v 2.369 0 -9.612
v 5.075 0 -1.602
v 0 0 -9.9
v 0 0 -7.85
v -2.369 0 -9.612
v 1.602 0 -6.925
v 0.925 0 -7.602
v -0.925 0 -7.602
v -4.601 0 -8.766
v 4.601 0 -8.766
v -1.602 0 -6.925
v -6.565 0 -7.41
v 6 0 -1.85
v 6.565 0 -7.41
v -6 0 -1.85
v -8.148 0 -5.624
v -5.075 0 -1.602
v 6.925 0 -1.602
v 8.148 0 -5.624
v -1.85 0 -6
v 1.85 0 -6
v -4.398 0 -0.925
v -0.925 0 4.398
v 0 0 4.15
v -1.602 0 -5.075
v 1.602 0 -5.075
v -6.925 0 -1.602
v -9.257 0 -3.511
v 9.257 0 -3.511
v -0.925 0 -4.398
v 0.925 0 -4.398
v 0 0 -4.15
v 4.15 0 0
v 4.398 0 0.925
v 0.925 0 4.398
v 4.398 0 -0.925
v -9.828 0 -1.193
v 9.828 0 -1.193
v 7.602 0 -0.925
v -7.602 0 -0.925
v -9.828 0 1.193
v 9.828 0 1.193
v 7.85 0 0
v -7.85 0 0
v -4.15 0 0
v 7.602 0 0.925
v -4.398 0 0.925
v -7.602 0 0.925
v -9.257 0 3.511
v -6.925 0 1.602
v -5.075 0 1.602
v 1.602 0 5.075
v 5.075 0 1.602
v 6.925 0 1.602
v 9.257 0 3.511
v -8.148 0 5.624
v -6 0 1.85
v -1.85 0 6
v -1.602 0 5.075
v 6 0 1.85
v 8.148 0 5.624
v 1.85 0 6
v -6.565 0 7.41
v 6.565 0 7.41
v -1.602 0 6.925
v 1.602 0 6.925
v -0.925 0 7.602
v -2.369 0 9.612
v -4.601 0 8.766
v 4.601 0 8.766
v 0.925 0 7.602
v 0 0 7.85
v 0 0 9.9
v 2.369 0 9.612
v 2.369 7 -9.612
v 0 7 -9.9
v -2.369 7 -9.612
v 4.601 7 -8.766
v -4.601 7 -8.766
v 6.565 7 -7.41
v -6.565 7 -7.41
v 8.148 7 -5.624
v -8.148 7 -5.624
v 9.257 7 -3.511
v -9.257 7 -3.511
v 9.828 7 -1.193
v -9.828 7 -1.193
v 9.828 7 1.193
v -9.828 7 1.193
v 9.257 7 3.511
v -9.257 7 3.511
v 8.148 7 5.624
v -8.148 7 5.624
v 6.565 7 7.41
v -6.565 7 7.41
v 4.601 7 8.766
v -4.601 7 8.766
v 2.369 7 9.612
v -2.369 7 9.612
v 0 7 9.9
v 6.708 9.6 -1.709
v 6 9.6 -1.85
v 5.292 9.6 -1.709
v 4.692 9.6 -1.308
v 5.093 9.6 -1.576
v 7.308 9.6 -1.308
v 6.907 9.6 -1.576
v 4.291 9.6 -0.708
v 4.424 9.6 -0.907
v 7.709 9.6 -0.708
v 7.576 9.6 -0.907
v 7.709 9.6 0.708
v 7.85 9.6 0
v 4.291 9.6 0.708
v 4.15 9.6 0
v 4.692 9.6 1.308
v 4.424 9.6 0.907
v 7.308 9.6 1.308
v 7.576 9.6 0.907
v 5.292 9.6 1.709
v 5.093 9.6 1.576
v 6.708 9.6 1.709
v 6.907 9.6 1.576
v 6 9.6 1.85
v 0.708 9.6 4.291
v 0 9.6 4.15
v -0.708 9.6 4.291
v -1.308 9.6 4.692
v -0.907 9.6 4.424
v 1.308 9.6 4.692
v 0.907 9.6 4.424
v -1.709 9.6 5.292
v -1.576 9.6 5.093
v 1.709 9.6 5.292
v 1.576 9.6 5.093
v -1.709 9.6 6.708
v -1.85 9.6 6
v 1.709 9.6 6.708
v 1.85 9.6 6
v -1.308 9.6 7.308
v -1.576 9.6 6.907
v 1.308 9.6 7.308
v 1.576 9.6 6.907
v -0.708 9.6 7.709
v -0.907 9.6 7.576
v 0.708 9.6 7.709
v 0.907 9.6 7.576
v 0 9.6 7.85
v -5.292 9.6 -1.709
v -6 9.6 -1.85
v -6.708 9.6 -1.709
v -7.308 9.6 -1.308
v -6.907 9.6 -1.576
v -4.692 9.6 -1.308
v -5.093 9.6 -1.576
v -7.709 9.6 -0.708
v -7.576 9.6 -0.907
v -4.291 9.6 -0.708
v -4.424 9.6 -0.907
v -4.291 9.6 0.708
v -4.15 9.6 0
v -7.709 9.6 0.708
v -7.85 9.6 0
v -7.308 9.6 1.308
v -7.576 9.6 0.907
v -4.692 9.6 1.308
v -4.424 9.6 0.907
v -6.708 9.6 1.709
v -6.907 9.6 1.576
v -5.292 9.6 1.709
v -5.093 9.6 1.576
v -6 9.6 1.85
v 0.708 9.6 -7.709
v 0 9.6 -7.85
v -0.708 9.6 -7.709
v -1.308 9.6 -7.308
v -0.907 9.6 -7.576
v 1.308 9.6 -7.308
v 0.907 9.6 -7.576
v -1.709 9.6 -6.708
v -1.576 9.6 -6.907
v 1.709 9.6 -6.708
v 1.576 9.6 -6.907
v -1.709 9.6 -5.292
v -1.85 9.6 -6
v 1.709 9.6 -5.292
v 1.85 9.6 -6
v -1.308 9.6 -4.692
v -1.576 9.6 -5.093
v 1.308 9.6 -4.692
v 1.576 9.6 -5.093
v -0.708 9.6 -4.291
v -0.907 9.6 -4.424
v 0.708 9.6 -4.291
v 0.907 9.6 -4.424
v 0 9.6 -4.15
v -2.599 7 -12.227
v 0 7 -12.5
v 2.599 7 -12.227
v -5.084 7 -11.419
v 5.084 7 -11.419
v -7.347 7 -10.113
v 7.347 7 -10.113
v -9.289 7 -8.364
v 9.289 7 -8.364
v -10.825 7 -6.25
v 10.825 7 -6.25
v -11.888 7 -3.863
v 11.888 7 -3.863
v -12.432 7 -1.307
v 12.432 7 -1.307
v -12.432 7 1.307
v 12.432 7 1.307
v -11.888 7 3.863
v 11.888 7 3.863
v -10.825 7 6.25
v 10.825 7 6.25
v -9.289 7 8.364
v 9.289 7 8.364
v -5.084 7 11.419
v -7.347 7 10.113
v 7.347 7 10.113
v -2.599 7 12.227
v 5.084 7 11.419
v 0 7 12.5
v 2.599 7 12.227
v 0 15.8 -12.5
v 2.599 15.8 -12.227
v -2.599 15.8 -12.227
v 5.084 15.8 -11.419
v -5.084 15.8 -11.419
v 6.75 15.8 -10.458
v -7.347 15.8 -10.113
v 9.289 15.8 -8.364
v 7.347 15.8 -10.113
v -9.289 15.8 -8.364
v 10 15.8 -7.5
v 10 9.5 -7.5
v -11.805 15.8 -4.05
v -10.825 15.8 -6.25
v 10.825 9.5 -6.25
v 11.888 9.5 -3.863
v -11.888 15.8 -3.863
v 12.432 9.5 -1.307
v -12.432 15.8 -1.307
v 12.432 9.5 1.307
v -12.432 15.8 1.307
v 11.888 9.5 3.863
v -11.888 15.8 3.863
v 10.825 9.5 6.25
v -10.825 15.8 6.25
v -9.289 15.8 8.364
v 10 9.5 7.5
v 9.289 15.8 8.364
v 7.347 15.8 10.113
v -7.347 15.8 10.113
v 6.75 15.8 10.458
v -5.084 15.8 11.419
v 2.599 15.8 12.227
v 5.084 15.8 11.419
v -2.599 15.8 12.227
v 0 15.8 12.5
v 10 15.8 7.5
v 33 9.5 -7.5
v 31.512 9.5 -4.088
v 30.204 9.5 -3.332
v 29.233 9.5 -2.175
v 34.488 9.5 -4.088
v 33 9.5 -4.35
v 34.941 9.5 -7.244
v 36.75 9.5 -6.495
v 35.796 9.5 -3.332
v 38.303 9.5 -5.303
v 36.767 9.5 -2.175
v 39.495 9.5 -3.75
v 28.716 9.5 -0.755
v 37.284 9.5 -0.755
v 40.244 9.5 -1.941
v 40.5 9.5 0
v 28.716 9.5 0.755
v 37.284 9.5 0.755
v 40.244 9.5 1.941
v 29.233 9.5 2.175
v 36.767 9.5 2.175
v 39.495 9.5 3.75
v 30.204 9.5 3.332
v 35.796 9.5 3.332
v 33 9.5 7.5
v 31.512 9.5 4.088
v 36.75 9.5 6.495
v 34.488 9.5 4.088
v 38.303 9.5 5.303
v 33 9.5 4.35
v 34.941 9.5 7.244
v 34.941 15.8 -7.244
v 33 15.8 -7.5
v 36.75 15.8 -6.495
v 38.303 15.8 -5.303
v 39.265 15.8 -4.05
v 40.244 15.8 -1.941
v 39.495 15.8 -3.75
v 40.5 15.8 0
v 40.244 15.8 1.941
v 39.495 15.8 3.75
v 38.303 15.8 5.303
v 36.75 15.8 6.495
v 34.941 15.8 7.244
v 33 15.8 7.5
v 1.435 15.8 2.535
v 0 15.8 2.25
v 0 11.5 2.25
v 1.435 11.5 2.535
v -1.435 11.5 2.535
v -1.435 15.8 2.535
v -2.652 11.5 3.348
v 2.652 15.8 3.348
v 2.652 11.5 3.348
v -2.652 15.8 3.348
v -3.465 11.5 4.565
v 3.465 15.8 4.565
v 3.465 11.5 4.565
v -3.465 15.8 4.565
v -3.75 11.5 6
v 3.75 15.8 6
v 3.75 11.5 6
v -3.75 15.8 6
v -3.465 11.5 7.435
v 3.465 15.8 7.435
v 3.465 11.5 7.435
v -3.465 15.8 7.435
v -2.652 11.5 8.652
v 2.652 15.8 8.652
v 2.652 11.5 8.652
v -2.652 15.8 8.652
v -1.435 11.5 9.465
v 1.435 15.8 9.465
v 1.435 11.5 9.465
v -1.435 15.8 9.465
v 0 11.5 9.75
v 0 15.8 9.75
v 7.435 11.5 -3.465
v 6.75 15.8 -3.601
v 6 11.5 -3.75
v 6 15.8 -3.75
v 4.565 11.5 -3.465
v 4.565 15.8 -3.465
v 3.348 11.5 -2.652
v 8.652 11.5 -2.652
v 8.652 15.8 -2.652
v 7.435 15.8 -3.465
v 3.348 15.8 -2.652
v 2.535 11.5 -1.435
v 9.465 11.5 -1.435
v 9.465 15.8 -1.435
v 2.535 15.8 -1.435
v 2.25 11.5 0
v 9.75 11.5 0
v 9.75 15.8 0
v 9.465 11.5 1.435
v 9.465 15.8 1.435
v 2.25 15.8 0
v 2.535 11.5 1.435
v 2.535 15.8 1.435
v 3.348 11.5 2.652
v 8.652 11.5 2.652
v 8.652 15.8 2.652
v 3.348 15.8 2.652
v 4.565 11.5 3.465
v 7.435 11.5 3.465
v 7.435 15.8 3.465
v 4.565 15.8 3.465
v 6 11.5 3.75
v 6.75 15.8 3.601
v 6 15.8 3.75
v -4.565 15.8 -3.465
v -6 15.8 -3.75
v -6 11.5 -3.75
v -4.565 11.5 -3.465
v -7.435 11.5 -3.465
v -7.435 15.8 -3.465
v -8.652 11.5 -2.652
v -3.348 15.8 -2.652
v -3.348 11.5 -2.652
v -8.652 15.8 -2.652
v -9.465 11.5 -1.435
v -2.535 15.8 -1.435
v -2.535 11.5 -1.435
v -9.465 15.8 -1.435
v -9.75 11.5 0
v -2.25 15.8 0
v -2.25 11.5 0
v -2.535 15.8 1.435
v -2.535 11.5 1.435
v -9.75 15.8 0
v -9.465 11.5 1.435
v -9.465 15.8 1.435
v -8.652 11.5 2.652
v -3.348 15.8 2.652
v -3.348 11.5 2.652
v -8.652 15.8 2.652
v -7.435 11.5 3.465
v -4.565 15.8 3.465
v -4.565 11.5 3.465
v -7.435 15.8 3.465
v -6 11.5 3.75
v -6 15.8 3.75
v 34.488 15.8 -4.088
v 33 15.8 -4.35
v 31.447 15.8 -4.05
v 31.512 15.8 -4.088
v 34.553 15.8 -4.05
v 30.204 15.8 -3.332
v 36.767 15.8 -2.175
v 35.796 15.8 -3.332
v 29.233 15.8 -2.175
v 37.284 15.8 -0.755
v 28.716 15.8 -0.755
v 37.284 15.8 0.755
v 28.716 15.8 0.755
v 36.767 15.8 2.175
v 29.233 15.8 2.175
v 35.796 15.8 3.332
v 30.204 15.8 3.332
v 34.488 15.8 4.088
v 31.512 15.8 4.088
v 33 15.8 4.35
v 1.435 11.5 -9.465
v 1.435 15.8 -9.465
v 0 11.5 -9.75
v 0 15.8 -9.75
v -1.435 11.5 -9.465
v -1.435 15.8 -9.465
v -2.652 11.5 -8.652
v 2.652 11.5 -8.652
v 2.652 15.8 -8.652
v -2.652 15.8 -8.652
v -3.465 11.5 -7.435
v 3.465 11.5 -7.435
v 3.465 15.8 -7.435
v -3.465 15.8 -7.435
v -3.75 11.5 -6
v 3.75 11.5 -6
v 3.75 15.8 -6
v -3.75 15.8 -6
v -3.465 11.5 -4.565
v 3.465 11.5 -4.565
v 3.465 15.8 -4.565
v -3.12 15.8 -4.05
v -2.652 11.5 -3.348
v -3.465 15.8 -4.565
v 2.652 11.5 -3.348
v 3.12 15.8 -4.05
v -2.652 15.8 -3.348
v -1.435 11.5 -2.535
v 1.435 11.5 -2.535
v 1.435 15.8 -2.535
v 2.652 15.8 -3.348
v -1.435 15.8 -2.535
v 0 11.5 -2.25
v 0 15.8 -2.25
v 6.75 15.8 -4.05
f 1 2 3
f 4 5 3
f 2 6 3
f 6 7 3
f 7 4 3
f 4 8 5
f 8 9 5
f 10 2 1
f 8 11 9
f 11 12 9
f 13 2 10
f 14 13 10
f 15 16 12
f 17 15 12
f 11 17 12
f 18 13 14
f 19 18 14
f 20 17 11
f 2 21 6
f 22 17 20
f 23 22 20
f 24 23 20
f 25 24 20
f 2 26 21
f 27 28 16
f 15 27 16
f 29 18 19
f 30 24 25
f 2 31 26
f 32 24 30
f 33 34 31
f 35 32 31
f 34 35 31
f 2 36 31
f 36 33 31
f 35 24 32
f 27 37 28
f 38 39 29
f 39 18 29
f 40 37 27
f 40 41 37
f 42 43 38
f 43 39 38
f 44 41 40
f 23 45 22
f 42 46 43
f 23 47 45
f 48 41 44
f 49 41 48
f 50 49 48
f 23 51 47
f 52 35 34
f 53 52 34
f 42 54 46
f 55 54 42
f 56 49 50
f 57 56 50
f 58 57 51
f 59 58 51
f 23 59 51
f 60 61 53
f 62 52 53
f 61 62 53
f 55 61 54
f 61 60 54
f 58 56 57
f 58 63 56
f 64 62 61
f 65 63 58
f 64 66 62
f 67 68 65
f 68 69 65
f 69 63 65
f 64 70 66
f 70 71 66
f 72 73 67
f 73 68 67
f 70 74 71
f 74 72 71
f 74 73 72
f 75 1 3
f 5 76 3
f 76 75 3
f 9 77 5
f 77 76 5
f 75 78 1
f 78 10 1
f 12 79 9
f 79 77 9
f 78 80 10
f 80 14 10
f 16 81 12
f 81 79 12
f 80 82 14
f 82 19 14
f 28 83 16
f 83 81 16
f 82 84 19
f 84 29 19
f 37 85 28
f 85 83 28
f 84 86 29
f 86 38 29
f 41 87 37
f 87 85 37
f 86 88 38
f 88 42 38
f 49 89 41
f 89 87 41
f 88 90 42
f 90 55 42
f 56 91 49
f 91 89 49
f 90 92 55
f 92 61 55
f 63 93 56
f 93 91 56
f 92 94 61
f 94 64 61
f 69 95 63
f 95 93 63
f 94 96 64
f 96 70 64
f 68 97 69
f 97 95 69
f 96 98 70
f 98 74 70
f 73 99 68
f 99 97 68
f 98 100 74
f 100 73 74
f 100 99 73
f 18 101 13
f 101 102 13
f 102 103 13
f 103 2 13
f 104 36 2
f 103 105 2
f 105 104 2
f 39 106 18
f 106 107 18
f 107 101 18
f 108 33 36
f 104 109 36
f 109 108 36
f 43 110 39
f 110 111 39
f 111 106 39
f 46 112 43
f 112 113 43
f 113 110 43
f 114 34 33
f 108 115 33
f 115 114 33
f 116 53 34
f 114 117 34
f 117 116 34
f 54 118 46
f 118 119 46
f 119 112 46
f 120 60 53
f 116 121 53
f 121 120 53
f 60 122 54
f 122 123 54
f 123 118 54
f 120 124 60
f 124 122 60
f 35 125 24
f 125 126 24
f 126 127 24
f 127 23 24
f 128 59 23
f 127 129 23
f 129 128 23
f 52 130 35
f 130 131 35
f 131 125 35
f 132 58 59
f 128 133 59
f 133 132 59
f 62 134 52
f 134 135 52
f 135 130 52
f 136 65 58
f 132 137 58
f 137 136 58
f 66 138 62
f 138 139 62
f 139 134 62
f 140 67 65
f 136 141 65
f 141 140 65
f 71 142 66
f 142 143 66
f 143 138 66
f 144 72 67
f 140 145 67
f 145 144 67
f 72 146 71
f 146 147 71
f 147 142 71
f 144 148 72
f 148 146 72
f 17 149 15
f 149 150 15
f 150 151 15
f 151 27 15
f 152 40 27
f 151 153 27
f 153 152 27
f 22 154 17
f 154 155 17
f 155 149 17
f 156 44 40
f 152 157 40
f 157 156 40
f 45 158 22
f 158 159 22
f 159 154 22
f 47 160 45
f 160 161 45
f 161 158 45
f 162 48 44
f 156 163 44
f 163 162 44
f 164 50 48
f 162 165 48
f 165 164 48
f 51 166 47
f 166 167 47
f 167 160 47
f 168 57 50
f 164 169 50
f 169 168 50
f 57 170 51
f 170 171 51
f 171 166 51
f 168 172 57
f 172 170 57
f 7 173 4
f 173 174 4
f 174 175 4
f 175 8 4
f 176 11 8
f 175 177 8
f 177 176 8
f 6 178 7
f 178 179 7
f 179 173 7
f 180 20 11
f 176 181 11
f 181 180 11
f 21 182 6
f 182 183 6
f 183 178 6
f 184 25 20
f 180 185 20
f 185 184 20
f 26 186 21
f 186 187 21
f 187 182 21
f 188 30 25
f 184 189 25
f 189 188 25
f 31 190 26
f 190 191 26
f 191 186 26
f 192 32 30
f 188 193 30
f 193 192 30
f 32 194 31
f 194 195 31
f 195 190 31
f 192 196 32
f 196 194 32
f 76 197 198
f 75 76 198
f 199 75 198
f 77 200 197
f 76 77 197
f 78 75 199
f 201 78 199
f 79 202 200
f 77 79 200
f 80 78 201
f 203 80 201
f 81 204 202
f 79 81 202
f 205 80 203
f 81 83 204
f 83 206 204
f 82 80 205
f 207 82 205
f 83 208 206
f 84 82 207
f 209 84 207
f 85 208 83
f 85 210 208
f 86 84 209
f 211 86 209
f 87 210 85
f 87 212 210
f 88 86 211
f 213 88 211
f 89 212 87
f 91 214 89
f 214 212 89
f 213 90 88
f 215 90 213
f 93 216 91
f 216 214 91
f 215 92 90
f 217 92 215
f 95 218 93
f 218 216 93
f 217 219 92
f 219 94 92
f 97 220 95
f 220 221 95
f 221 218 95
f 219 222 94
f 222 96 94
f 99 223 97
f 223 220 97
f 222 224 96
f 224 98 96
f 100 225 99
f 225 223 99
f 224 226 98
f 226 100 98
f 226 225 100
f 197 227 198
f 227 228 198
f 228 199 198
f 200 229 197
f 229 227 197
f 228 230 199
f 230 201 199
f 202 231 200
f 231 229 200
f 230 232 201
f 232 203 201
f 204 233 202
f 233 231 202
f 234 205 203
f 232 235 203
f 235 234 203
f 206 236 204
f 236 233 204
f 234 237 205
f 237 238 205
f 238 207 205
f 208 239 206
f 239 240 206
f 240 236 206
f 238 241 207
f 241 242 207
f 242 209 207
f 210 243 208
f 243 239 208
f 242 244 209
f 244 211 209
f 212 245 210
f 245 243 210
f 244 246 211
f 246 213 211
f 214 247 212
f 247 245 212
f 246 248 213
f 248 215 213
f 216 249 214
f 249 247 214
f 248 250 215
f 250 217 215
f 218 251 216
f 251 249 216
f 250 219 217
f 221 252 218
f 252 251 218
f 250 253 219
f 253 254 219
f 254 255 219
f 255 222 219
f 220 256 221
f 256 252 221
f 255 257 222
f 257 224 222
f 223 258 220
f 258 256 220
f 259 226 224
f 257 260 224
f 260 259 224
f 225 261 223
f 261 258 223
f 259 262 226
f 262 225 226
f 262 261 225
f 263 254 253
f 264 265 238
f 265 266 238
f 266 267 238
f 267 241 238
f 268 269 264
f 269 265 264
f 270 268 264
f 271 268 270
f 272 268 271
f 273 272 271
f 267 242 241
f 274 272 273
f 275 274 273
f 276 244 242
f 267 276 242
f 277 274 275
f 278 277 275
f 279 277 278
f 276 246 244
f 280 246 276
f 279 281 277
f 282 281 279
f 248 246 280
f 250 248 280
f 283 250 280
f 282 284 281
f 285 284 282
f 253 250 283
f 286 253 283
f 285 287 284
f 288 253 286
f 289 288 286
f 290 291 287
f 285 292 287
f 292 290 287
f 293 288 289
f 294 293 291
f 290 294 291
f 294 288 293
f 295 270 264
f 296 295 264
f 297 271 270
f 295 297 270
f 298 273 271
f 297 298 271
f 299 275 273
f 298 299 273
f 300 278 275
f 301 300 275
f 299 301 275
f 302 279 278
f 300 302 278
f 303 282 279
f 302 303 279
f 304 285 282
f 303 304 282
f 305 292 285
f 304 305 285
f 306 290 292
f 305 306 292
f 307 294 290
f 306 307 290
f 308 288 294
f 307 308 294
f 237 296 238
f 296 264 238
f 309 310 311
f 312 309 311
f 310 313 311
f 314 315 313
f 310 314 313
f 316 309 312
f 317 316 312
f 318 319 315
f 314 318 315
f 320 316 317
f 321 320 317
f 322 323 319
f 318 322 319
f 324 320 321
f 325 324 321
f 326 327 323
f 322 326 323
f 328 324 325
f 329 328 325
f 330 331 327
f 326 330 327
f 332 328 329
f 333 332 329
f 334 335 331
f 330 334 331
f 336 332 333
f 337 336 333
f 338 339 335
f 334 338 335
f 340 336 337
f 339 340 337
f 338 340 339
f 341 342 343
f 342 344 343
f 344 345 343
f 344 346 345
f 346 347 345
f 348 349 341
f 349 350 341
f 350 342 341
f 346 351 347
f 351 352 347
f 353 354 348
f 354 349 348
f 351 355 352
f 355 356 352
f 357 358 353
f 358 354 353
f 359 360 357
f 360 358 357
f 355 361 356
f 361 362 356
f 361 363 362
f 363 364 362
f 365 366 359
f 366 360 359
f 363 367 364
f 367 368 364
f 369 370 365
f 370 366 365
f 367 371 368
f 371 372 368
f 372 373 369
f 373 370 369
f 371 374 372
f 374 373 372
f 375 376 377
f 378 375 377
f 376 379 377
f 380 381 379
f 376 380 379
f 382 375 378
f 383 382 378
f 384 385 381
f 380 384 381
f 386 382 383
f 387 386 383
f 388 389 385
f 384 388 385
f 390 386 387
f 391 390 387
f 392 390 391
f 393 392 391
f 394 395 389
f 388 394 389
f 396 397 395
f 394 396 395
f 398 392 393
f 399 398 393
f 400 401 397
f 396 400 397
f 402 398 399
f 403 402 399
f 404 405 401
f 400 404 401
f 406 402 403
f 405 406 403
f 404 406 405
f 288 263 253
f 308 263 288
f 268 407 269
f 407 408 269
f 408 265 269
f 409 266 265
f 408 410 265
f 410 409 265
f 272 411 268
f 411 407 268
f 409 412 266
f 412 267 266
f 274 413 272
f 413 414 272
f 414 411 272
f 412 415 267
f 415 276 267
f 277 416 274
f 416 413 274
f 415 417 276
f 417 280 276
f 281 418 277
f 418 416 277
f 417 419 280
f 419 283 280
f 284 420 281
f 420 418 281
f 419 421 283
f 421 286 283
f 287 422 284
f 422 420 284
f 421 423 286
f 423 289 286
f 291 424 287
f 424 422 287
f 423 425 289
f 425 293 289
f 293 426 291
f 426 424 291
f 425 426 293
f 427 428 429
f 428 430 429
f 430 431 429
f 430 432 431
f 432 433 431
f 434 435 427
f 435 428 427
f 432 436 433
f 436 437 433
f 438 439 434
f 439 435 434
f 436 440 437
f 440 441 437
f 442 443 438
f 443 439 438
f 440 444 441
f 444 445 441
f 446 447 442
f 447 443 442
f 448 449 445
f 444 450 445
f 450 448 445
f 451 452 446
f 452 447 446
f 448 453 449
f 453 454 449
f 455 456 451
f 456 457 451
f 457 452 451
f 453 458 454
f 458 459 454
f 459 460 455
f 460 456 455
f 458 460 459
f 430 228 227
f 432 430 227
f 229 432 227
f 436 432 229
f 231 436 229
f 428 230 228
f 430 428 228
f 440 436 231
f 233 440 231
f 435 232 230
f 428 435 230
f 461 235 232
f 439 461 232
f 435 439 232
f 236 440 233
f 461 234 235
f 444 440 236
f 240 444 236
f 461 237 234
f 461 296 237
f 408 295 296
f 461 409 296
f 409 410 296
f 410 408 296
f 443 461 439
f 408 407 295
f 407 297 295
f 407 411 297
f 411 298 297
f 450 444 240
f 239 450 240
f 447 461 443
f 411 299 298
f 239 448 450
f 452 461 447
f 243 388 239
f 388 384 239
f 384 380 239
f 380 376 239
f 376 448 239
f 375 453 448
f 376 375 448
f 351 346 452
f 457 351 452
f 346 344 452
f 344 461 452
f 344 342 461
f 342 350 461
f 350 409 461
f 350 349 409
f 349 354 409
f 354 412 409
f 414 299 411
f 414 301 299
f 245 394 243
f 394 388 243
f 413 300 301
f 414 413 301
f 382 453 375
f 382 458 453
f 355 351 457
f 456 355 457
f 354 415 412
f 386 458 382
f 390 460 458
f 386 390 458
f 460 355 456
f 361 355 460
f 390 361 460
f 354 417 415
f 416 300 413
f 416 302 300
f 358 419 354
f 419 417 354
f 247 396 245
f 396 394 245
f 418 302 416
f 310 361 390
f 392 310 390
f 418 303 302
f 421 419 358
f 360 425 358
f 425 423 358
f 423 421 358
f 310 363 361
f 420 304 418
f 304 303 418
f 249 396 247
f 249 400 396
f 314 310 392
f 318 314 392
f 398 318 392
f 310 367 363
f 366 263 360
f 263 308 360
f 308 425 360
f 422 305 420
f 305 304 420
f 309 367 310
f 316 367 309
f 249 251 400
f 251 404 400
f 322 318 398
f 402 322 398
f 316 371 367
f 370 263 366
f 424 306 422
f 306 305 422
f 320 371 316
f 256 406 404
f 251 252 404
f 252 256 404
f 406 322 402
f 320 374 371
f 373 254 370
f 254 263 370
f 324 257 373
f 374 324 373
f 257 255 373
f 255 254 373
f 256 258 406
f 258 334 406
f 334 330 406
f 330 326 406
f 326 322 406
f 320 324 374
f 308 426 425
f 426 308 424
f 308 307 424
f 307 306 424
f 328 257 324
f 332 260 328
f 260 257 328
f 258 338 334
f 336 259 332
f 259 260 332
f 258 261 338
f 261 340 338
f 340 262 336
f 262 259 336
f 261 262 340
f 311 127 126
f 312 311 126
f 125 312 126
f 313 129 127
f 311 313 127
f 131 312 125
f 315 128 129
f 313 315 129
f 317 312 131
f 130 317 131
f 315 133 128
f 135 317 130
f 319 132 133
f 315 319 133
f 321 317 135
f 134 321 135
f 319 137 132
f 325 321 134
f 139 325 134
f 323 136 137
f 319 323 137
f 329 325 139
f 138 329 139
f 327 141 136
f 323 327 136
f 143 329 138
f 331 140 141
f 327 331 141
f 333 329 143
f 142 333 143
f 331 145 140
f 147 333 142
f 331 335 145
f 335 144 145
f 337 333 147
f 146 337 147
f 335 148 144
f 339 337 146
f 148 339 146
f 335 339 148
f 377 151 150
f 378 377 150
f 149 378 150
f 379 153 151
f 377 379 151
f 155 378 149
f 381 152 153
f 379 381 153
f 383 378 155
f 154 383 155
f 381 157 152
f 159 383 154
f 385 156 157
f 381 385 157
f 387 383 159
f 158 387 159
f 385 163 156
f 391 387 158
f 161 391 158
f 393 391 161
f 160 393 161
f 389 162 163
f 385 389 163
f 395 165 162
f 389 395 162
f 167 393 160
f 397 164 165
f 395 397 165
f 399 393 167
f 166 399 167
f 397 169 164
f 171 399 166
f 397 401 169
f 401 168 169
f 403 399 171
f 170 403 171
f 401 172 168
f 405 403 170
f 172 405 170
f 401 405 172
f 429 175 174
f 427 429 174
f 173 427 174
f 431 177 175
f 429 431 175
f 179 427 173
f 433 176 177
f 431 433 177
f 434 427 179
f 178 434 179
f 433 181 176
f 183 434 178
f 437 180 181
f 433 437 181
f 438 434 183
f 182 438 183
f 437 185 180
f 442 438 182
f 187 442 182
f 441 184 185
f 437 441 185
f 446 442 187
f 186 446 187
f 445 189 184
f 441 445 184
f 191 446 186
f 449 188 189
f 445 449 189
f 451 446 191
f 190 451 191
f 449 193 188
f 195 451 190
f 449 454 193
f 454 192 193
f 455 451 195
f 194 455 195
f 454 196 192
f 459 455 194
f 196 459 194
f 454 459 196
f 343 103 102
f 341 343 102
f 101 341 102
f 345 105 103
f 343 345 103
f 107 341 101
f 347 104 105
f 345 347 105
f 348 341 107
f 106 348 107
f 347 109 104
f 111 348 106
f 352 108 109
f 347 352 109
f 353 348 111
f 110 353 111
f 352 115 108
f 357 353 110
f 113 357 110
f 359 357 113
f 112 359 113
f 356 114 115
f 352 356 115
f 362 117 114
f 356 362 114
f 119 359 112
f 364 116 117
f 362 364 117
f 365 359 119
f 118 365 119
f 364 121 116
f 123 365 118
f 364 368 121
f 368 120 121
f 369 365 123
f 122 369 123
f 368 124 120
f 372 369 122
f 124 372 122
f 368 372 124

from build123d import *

# Parameters (mm, degrees)
SKETCH_1_R      = 9.9
SKETCH_1_R_2    = 1.85
EXTRUDE_1_DEPTH = 7
SKETCH_2_R      = 12.5
SKETCH_2_R_2    = 1.85
EXTRUDE_2_DEPTH = 2.5
SKETCH_3_R      = 3.75
EXTRUDE_3_DEPTH = 6.3
CHAMFER_1_SIZE  = 2


with BuildPart() as part:
    # 草图1 → 凸台-拉伸1 (new body)
    with BuildSketch(Plane(origin=(0, 0, 0), x_dir=(1, 0, 0), z_dir=(0, 1, 0))):
        with Locations(Location((0, 0, 0), (0, 0, 270))):
            Circle(SKETCH_1_R)
        with Locations(Location((6, 0, 0), (0, 0, 270))):
            Circle(SKETCH_1_R_2, mode=Mode.SUBTRACT)
        with Locations(Location((0, -6, 0), (0, 0, 270))):
            Circle(SKETCH_1_R_2, mode=Mode.SUBTRACT)
        with Locations(Location((-6, 0, 0), (0, 0, 270))):
            Circle(SKETCH_1_R_2, mode=Mode.SUBTRACT)
        with Locations(Location((0, 6, 0), (0, 0, 270))):
            Circle(SKETCH_1_R_2, mode=Mode.SUBTRACT)
    extrude(amount=EXTRUDE_1_DEPTH)

    # 草图2 → 凸台-拉伸2 (add)
    with BuildSketch(Plane(origin=(0, 7, 0), x_dir=(1, 0, 0), z_dir=(0, 1, 0))):
        with Locations(Location((0, 0, 0), (0, 0, 270))):
            Circle(SKETCH_2_R)
        with Locations(Location((-6, 0, 0), (0, 0, 270))):
            Circle(SKETCH_2_R_2, mode=Mode.SUBTRACT)
        with Locations(Location((0, -6, 0), (0, 0, 270))):
            Circle(SKETCH_2_R_2, mode=Mode.SUBTRACT)
        with Locations(Location((6, 0, 0), (0, 0, 270))):
            Circle(SKETCH_2_R_2, mode=Mode.SUBTRACT)
        with Locations(Location((0, 6, 0), (0, 0, 270))):
            Circle(SKETCH_2_R_2, mode=Mode.SUBTRACT)
    extrude(amount=EXTRUDE_2_DEPTH)

    # 草图3 → 凸台-拉伸3 (add)
    # profile 1 of 8: a face of its own
    with BuildSketch(Plane(origin=(0, 9.5, 0), x_dir=(1, 0, 0), z_dir=(0, 1, 0))):
        with BuildLine():
            Line((2.25, 0), (-2.25, 0))
            ThreePointArc((-2.25, 0), (-6, -3.75), (-9.75, 0))
            Line((-9.75, 0), (-12.5, 0))
            ThreePointArc((-12.5, 0), (-3.952847075, -11.858541226), (10, -7.5))
            ThreePointArc((10, -7.5), (11.858541226, -3.952847075), (12.5, 0))
            Line((12.5, 0), (9.75, 0))
            ThreePointArc((9.75, 0), (6, -3.75), (2.25, 0))
        make_face()
        with Locations(Location((0, -6, 0), (0, 0, 270))):
            Circle(SKETCH_3_R, mode=Mode.SUBTRACT)
    # profile 2 of 8: a face of its own
    with BuildSketch(Plane(origin=(0, 9.5, 0), x_dir=(1, 0, 0), z_dir=(0, 1, 0))):
        with BuildLine():
            ThreePointArc((-9.75, 0), (-6, 3.75), (-2.25, 0))
            Line((-2.25, 0), (2.25, 0))
            ThreePointArc((2.25, 0), (6, 3.75), (9.75, 0))
            Line((9.75, 0), (12.5, 0))
            ThreePointArc((12.5, 0), (11.858541226, 3.952847075), (10, 7.5))
            ThreePointArc((10, 7.5), (-3.952847075, 11.858541226), (-12.5, 0))
            Line((-12.5, 0), (-9.75, 0))
        make_face()
        with Locations(Location((0, 6, 0), (0, 0, 270))):
            Circle(SKETCH_3_R, mode=Mode.SUBTRACT)
    # profile 3 of 8: a face of its own
    with BuildSketch(Plane(origin=(0, 9.5, 0), x_dir=(1, 0, 0), z_dir=(0, 1, 0))):
        with BuildLine():
            ThreePointArc((10, 7.5), (11.858541226, 3.952847075), (12.5, 0))
            Line((12.5, 0), (25.5, 0))
            ThreePointArc((25.5, 0), (27.696699141, 5.303300859), (33, 7.5))
            Line((33, 7.5), (10, 7.5))
        make_face()
    # profile 4 of 8: a face of its own
    with BuildSketch(Plane(origin=(0, 9.5, 0), x_dir=(1, 0, 0), z_dir=(0, 1, 0))):
        with BuildLine():
            Line((25.5, 0), (12.5, 0))
            ThreePointArc((12.5, 0), (11.858541226, -3.952847075), (10, -7.5))
            Line((10, -7.5), (33, -7.5))
            ThreePointArc((33, -7.5), (27.696699141, -5.303300859), (25.5, 0))
        make_face()
    # profile 5 of 8: a face of its own
    with BuildSketch(Plane(origin=(0, 9.5, 0), x_dir=(1, 0, 0), z_dir=(0, 1, 0))):
        with BuildLine():
            ThreePointArc((33, 7.5), (27.696699141, 5.303300859), (25.5, 0))
            Line((25.5, 0), (28.65, 0))
            ThreePointArc((28.65, 0), (33, 4.35), (37.35, 0))
            Line((37.35, 0), (40.5, 0))
            ThreePointArc((40.5, 0), (38.303300859, 5.303300859), (33, 7.5))
        make_face()
    # profile 6 of 8: a face of its own
    with BuildSketch(Plane(origin=(0, 9.5, 0), x_dir=(1, 0, 0), z_dir=(0, 1, 0))):
        with BuildLine():
            Line((28.65, 0), (25.5, 0))
            ThreePointArc((25.5, 0), (27.696699141, -5.303300859), (33, -7.5))
            ThreePointArc((33, -7.5), (38.303300859, -5.303300859), (40.5, 0))
            Line((40.5, 0), (37.35, 0))
            ThreePointArc((37.35, 0), (33, -4.35), (28.65, 0))
        make_face()
    # profile 7 of 8: a face of its own
    with BuildSketch(Plane(origin=(0, 9.5, 0), x_dir=(1, 0, 0), z_dir=(0, 1, 0))):
        with BuildLine():
            ThreePointArc((33, 7.5), (27.696699141, 5.303300859), (25.5, 0))
            Line((25.5, 0), (28.65, 0))
            ThreePointArc((28.65, 0), (33, 4.35), (37.35, 0))
            Line((37.35, 0), (40.5, 0))
            ThreePointArc((40.5, 0), (38.303300859, 5.303300859), (33, 7.5))
        make_face()
    # profile 8 of 8: a face of its own
    with BuildSketch(Plane(origin=(0, 9.5, 0), x_dir=(1, 0, 0), z_dir=(0, 1, 0))):
        with BuildLine():
            Line((28.65, 0), (25.5, 0))
            ThreePointArc((25.5, 0), (27.696699141, -5.303300859), (33, -7.5))
            ThreePointArc((33, -7.5), (38.303300859, -5.303300859), (40.5, 0))
            Line((40.5, 0), (37.35, 0))
            ThreePointArc((37.35, 0), (33, -4.35), (28.65, 0))
        make_face()
    extrude(amount=EXTRUDE_3_DEPTH)

    # 倒角1
    # the kernel refuses this chamfer: 2 mm, written as the material it adds along each edge
    with BuildSketch(Plane(origin=(0, 9.5, 6), x_dir=(0, 0, 1), z_dir=(-1, 0, 0))) as chamfer_1_piece_1_section:
        Polygon((3.75 - CHAMFER_1_SIZE, 0), (3.75, CHAMFER_1_SIZE), (3.75, 0), align=None)
    chamfer_1_piece_1 = revolve(axis=Axis((0, 9.5, 6), (0, 1, 0)), mode=Mode.PRIVATE)
    chamfer_1_piece_1 = chamfer_1_piece_1 - Plane(origin=(0, 10.553600351, 6), x_dir=(0, 0, 1), z_dir=(0, -1, 0)) * Cylinder(1.85, 15, mode=Mode.PRIVATE)
    add(chamfer_1_piece_1)
    with BuildSketch(Plane(origin=(-6, 9.5, 0), x_dir=(-1, 0, 0), z_dir=(0, 0, 1))) as chamfer_1_piece_2_section:
        Polygon((3.75 - CHAMFER_1_SIZE, 0), (3.75, -CHAMFER_1_SIZE), (3.75, 0), align=None)
    chamfer_1_piece_2 = revolve(axis=Axis((-6, 9.5, 0), (0, -1, 0)), mode=Mode.PRIVATE)
    chamfer_1_piece_2 = chamfer_1_piece_2 - Plane(origin=(-6, 10.553600351, 0), x_dir=(0, 0, 1), z_dir=(0, -1, 0)) * Cylinder(1.85, 15, mode=Mode.PRIVATE)
    add(chamfer_1_piece_2)
    with BuildSketch(Plane(origin=(0, 9.5, -6), x_dir=(0, 0, 1), z_dir=(-1, 0, 0))) as chamfer_1_piece_3_section:
        Polygon((3.75 - CHAMFER_1_SIZE, 0), (3.75, CHAMFER_1_SIZE), (3.75, 0), align=None)
    chamfer_1_piece_3 = revolve(axis=Axis((0, 9.5, -6), (0, 1, 0)), mode=Mode.PRIVATE)
    chamfer_1_piece_3 = chamfer_1_piece_3 - Plane(origin=(0, 10.553600351, -6), x_dir=(0, 0, 1), z_dir=(0, -1, 0)) * Cylinder(1.85, 16, mode=Mode.PRIVATE)
    add(chamfer_1_piece_3)
    with BuildSketch(Plane(origin=(6, 9.5, 0), x_dir=(1, 0, 0), z_dir=(0, 0, -1))) as chamfer_1_piece_4_section:
        Polygon((3.75 - CHAMFER_1_SIZE, 0), (3.75, -CHAMFER_1_SIZE), (3.75, 0), align=None)
    chamfer_1_piece_4 = revolve(axis=Axis((6, 9.5, 0), (0, -1, 0)), mode=Mode.PRIVATE)
    chamfer_1_piece_4 = chamfer_1_piece_4 - Plane(origin=(6, 10.553600351, 0), x_dir=(0, 0, 1), z_dir=(0, -1, 0)) * Cylinder(1.85, 15, mode=Mode.PRIVATE)
    add(chamfer_1_piece_4)


solid = part.part
